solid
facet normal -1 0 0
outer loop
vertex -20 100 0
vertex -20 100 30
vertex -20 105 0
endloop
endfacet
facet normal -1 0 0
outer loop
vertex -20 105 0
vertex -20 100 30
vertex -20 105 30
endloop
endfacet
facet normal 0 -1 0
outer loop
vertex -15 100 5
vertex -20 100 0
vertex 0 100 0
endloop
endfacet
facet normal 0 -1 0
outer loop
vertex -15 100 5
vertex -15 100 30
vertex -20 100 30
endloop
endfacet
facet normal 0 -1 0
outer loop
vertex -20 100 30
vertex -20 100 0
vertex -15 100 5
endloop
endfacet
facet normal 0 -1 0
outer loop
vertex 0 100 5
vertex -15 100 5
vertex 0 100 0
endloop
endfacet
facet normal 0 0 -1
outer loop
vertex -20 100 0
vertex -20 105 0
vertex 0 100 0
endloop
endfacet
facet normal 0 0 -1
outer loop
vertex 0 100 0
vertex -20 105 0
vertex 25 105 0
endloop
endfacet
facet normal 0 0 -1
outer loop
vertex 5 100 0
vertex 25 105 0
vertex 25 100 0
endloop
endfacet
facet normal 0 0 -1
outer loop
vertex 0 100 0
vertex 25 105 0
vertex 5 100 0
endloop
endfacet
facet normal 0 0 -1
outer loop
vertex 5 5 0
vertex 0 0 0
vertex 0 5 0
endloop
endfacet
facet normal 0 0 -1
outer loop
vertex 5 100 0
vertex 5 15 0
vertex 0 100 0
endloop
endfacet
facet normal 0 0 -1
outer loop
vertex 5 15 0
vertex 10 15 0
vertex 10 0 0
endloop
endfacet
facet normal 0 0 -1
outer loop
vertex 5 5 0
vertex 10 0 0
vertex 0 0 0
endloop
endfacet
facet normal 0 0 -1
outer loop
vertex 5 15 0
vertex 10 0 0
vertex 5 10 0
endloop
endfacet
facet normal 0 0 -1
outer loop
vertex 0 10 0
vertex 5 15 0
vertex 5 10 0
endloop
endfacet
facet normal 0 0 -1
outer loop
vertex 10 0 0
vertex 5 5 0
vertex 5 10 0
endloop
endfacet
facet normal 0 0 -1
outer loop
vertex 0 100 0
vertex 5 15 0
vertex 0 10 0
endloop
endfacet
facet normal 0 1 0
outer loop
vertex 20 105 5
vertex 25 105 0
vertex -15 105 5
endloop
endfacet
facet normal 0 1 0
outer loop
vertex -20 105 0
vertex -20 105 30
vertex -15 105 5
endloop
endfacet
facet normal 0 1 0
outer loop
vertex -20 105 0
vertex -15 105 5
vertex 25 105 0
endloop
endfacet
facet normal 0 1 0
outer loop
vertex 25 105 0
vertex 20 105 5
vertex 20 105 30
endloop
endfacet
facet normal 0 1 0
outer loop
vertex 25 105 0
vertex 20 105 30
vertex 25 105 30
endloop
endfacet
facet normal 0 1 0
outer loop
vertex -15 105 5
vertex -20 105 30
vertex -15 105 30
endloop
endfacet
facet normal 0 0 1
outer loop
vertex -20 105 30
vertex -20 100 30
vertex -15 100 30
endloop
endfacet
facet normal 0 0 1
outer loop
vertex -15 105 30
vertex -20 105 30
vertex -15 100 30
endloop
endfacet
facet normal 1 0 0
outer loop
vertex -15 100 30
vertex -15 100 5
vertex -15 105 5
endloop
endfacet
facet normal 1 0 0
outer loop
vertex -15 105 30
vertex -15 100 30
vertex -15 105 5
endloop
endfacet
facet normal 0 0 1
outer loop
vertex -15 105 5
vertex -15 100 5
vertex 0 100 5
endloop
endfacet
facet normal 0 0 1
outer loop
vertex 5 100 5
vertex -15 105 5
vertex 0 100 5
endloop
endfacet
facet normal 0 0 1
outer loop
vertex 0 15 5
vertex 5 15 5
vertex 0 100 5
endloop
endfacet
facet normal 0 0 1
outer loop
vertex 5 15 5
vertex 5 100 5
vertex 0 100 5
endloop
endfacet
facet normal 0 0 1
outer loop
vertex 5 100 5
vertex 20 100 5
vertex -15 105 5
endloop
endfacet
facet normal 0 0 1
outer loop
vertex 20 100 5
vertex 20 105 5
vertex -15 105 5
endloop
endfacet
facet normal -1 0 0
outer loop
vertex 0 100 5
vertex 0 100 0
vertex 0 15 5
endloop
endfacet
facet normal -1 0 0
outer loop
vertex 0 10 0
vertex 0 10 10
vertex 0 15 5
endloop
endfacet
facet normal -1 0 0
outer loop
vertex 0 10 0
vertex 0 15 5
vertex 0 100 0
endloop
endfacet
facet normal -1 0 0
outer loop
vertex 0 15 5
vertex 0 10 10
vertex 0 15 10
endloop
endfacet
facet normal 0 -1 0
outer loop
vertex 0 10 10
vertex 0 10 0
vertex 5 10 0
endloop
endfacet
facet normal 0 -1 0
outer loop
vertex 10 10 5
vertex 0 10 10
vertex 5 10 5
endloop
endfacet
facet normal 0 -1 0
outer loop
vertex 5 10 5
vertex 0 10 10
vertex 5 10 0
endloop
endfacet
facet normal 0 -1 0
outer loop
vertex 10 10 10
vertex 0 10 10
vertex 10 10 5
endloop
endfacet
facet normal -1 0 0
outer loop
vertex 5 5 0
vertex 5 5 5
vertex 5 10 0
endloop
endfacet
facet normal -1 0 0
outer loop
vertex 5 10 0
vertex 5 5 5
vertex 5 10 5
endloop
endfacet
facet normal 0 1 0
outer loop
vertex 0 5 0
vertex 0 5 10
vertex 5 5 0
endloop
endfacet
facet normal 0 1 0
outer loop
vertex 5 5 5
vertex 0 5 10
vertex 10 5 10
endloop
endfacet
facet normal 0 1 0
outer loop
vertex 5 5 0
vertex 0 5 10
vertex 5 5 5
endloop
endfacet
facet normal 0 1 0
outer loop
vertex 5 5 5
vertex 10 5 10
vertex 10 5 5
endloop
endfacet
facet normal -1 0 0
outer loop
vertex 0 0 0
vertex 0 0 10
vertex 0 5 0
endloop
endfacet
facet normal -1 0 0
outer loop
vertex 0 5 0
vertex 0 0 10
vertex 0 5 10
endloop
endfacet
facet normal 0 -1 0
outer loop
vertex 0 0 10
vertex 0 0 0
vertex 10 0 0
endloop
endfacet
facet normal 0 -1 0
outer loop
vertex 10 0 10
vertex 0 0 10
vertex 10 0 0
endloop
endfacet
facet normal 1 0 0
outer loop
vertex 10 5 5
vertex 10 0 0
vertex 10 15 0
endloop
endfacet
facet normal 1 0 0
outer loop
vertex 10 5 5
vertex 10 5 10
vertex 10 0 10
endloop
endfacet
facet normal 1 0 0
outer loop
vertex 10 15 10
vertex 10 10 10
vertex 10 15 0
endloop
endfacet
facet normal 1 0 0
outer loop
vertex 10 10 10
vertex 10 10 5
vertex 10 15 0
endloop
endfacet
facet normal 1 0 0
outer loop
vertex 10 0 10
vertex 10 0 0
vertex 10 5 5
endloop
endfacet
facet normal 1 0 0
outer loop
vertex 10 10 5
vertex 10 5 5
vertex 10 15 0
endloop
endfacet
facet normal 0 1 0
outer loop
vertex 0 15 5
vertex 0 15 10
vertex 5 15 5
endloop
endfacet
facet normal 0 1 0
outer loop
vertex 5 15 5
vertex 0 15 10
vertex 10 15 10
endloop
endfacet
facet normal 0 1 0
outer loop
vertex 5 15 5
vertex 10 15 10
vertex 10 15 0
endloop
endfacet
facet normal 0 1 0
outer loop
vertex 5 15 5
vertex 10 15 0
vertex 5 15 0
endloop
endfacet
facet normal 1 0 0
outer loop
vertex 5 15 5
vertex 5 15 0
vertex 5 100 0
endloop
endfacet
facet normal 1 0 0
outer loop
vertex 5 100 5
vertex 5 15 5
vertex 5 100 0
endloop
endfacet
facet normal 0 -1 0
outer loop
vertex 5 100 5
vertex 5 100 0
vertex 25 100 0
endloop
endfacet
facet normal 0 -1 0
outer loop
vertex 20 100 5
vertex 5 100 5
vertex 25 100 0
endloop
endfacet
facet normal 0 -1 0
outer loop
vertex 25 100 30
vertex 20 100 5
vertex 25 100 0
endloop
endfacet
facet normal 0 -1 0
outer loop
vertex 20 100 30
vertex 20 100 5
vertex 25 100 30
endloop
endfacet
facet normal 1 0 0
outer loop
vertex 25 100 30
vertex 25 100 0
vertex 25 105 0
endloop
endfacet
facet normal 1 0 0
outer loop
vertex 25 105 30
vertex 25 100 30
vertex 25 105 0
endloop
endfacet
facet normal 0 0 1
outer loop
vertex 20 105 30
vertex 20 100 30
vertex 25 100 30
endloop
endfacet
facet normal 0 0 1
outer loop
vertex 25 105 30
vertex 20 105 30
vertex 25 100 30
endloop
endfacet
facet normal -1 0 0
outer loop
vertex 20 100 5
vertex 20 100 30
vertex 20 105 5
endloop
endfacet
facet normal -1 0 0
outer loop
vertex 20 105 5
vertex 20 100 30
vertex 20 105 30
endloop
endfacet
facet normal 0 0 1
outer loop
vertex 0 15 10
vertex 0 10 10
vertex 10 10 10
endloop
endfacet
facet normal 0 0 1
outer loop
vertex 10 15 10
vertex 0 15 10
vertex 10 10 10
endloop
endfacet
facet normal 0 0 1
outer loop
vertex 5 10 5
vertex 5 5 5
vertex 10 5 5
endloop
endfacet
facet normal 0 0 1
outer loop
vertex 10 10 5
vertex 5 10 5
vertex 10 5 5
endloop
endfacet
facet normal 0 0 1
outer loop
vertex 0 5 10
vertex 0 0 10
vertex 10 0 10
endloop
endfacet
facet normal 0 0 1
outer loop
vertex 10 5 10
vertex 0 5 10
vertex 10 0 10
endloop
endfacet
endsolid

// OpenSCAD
/*

Copyright (c) 2014, Steven Presser
All rights reserved.

Redistribution and use in source and binary forms, with or without modification, are permitted provided that the following conditions are met:

1. Redistributions of source code must retain the above copyright notice, this list of conditions and the following disclaimer.

2. Redistributions in binary form must reproduce the above copyright notice, this list of conditions and the following disclaimer in the documentation and/or other materials provided with the distribution.

3. Neither the name of the <ORGANIZATION> nor the names of its contributors may be used to endorse or promote products derived from this software without specific prior written permission.

THIS SOFTWARE IS PROVIDED BY THE COPYRIGHT HOLDERS AND CONTRIBUTORS "AS IS" AND ANY EXPRESS OR IMPLIED WARRANTIES, INCLUDING, BUT NOT LIMITED TO, THE IMPLIED WARRANTIES OF MERCHANTABILITY AND FITNESS FOR A PARTICULAR PURPOSE ARE DISCLAIMED. IN NO EVENT SHALL THE COPYRIGHT HOLDER OR CONTRIBUTORS BE LIABLE FOR ANY DIRECT, INDIRECT, INCIDENTAL, SPECIAL, EXEMPLARY, OR CONSEQUENTIAL DAMAGES (INCLUDING, BUT NOT LIMITED TO, PROCUREMENT OF SUBSTITUTE GOODS OR SERVICES; LOSS OF USE, DATA, OR PROFITS; OR BUSINESS INTERRUPTION) HOWEVER CAUSED AND ON ANY THEORY OF LIABILITY, WHETHER IN CONTRACT, STRICT LIABILITY, OR TORT (INCLUDING NEGLIGENCE OR OTHERWISE) ARISING IN ANY WAY OUT OF THE USE OF THIS SOFTWARE, EVEN IF ADVISED OF THE POSSIBILITY OF SUCH DAMAGE.

*/

dropDistance=90;
splitWidth=45;
beamThickness=5;
tongueLength=30;

union() {
	cube([2*beamThickness,beamThickness,2*beamThickness]);
	translate([beamThickness,beamThickness,0])
cube([beamThickness,2*beamThickness,beamThickness]);
	translate([0,2*beamThickness,0]) cube([2*beamThickness,beamThickness,2*beamThickness]);
	translate([0,2*beamThickness,0]) {
		cube([beamThickness, dropDistance, beamThickness]);
	}
	translate([-(splitWidth-beamThickness)/2,2*beamThickness+dropDistance,0]) {
		cube([splitWidth, beamThickness, beamThickness]);
		cube([beamThickness, beamThickness, tongueLength]);
		translate([splitWidth-beamThickness,0,0]) cube([beamThickness, beamThickness, tongueLength]);
	}
}
